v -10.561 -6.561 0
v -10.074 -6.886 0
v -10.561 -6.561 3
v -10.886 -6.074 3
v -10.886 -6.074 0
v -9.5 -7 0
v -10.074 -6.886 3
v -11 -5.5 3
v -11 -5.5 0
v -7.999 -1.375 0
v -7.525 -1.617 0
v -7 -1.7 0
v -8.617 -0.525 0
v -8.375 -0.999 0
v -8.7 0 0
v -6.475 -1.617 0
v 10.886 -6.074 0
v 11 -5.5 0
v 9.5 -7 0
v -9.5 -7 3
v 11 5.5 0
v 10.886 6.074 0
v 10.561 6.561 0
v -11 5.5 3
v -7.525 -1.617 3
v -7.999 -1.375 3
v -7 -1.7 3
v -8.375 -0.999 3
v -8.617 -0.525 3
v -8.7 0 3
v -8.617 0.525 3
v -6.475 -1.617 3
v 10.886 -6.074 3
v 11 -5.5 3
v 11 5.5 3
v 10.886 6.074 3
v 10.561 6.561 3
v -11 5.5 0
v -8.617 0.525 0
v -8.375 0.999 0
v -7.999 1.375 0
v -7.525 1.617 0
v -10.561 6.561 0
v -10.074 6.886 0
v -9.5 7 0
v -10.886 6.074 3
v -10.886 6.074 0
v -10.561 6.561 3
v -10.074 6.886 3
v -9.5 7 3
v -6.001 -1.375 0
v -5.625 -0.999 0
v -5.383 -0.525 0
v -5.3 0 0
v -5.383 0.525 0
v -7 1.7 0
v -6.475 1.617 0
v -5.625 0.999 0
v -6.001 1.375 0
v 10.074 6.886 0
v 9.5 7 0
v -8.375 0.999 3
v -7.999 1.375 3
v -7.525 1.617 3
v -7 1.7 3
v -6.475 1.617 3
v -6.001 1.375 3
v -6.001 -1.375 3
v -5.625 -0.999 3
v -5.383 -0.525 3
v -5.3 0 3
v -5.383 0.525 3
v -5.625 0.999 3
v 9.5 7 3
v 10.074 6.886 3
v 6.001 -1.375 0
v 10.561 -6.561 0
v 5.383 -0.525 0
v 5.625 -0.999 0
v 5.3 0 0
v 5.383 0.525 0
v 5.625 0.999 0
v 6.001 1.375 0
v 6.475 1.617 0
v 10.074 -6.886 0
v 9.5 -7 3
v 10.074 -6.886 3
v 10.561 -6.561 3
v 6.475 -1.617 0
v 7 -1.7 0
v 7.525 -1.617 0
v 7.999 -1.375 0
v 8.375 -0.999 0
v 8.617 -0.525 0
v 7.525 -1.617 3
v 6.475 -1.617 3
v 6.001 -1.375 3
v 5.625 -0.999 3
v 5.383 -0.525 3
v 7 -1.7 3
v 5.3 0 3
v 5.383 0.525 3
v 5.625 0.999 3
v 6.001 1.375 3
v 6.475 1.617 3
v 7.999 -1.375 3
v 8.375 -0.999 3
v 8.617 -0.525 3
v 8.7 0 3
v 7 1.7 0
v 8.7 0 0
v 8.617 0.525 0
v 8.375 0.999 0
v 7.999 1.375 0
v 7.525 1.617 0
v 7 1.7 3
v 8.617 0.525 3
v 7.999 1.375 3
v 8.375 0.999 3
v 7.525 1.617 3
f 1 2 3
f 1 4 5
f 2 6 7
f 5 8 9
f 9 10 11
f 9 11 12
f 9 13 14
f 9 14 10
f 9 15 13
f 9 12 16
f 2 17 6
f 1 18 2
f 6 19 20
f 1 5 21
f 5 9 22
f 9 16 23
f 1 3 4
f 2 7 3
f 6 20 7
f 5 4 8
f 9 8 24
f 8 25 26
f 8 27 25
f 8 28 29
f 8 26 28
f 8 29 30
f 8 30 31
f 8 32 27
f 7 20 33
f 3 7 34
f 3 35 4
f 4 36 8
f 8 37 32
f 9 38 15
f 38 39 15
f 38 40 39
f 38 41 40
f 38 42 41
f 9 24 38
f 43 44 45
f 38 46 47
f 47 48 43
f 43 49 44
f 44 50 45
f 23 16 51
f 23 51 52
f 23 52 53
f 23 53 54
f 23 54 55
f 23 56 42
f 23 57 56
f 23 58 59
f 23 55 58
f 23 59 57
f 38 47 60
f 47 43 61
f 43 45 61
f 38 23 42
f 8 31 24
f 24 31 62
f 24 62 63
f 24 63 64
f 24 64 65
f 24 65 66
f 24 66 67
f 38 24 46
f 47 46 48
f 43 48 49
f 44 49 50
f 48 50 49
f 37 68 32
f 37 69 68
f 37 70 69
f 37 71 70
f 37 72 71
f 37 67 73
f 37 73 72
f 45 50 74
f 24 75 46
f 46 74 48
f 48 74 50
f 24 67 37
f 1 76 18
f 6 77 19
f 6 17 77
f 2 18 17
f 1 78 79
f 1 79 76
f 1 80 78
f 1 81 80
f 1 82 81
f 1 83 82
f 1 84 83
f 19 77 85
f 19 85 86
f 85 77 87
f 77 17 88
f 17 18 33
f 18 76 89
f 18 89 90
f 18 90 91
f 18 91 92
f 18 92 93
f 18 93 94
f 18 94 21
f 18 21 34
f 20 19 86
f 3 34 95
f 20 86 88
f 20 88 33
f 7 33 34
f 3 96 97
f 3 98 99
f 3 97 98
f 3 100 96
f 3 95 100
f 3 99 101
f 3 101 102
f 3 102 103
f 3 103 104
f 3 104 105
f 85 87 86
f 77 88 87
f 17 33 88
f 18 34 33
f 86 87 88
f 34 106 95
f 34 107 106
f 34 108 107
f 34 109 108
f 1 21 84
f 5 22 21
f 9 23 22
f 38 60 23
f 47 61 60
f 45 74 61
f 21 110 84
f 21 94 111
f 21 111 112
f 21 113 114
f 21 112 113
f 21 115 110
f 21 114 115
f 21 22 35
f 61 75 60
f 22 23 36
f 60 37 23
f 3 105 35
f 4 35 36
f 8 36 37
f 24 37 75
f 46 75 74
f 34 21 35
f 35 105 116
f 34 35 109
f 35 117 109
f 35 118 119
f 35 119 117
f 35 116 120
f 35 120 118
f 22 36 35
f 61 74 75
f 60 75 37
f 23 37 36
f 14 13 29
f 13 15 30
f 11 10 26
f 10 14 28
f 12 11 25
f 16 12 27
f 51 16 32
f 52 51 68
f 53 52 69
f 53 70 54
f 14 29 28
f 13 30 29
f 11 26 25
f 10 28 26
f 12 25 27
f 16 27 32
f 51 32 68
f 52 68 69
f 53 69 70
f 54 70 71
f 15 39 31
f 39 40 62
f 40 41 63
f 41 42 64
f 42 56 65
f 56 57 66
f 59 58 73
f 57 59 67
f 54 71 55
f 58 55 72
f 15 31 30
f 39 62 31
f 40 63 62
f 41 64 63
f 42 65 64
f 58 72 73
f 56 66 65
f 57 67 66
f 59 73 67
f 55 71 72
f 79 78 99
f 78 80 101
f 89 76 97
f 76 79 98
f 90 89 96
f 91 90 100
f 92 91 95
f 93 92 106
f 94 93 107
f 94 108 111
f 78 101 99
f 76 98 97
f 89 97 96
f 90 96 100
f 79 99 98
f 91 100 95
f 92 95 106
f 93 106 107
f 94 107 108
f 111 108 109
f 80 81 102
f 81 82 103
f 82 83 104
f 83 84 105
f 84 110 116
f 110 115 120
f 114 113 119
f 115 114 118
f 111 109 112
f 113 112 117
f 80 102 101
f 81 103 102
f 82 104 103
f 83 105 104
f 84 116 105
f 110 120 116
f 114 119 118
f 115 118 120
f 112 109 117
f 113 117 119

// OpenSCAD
// H15b_cradle_jaw  (qty 2; frame: local; any)
// GENERATED by gen_halo_stl.py from halo_parts.py. Change numbers in halo_params.scad.
// Every dimension below is an expression of the names in halo_params.scad.
include <../halo_params.scad>

difference() {
    linear_extrude(height = 3, center = false) polygon([[9.5, -7], [10.074025, -6.885819], [10.56066, -6.56066], [10.885819, -6.074025], [11, -5.5], [11, 5.5], [10.885819, 6.074025], [10.56066, 6.56066], [10.074025, 6.885819], [9.5, 7], [-9.5, 7], [-10.074025, 6.885819], [-10.56066, 6.56066], [-10.885819, 6.074025], [-11, 5.5], [-11, -5.5], [-10.885819, -6.074025], [-10.56066, -6.56066], [-10.074025, -6.885819], [-9.5, -7]]);
    translate([-7, 0, -1]) {
        cylinder(h = 5, r = M3_CLEAR / 2, center = false, $fn = 20);
    }
    translate([7, 0, -1]) {
        cylinder(h = 5, r = M3_CLEAR / 2, center = false, $fn = 20);
    }
}
